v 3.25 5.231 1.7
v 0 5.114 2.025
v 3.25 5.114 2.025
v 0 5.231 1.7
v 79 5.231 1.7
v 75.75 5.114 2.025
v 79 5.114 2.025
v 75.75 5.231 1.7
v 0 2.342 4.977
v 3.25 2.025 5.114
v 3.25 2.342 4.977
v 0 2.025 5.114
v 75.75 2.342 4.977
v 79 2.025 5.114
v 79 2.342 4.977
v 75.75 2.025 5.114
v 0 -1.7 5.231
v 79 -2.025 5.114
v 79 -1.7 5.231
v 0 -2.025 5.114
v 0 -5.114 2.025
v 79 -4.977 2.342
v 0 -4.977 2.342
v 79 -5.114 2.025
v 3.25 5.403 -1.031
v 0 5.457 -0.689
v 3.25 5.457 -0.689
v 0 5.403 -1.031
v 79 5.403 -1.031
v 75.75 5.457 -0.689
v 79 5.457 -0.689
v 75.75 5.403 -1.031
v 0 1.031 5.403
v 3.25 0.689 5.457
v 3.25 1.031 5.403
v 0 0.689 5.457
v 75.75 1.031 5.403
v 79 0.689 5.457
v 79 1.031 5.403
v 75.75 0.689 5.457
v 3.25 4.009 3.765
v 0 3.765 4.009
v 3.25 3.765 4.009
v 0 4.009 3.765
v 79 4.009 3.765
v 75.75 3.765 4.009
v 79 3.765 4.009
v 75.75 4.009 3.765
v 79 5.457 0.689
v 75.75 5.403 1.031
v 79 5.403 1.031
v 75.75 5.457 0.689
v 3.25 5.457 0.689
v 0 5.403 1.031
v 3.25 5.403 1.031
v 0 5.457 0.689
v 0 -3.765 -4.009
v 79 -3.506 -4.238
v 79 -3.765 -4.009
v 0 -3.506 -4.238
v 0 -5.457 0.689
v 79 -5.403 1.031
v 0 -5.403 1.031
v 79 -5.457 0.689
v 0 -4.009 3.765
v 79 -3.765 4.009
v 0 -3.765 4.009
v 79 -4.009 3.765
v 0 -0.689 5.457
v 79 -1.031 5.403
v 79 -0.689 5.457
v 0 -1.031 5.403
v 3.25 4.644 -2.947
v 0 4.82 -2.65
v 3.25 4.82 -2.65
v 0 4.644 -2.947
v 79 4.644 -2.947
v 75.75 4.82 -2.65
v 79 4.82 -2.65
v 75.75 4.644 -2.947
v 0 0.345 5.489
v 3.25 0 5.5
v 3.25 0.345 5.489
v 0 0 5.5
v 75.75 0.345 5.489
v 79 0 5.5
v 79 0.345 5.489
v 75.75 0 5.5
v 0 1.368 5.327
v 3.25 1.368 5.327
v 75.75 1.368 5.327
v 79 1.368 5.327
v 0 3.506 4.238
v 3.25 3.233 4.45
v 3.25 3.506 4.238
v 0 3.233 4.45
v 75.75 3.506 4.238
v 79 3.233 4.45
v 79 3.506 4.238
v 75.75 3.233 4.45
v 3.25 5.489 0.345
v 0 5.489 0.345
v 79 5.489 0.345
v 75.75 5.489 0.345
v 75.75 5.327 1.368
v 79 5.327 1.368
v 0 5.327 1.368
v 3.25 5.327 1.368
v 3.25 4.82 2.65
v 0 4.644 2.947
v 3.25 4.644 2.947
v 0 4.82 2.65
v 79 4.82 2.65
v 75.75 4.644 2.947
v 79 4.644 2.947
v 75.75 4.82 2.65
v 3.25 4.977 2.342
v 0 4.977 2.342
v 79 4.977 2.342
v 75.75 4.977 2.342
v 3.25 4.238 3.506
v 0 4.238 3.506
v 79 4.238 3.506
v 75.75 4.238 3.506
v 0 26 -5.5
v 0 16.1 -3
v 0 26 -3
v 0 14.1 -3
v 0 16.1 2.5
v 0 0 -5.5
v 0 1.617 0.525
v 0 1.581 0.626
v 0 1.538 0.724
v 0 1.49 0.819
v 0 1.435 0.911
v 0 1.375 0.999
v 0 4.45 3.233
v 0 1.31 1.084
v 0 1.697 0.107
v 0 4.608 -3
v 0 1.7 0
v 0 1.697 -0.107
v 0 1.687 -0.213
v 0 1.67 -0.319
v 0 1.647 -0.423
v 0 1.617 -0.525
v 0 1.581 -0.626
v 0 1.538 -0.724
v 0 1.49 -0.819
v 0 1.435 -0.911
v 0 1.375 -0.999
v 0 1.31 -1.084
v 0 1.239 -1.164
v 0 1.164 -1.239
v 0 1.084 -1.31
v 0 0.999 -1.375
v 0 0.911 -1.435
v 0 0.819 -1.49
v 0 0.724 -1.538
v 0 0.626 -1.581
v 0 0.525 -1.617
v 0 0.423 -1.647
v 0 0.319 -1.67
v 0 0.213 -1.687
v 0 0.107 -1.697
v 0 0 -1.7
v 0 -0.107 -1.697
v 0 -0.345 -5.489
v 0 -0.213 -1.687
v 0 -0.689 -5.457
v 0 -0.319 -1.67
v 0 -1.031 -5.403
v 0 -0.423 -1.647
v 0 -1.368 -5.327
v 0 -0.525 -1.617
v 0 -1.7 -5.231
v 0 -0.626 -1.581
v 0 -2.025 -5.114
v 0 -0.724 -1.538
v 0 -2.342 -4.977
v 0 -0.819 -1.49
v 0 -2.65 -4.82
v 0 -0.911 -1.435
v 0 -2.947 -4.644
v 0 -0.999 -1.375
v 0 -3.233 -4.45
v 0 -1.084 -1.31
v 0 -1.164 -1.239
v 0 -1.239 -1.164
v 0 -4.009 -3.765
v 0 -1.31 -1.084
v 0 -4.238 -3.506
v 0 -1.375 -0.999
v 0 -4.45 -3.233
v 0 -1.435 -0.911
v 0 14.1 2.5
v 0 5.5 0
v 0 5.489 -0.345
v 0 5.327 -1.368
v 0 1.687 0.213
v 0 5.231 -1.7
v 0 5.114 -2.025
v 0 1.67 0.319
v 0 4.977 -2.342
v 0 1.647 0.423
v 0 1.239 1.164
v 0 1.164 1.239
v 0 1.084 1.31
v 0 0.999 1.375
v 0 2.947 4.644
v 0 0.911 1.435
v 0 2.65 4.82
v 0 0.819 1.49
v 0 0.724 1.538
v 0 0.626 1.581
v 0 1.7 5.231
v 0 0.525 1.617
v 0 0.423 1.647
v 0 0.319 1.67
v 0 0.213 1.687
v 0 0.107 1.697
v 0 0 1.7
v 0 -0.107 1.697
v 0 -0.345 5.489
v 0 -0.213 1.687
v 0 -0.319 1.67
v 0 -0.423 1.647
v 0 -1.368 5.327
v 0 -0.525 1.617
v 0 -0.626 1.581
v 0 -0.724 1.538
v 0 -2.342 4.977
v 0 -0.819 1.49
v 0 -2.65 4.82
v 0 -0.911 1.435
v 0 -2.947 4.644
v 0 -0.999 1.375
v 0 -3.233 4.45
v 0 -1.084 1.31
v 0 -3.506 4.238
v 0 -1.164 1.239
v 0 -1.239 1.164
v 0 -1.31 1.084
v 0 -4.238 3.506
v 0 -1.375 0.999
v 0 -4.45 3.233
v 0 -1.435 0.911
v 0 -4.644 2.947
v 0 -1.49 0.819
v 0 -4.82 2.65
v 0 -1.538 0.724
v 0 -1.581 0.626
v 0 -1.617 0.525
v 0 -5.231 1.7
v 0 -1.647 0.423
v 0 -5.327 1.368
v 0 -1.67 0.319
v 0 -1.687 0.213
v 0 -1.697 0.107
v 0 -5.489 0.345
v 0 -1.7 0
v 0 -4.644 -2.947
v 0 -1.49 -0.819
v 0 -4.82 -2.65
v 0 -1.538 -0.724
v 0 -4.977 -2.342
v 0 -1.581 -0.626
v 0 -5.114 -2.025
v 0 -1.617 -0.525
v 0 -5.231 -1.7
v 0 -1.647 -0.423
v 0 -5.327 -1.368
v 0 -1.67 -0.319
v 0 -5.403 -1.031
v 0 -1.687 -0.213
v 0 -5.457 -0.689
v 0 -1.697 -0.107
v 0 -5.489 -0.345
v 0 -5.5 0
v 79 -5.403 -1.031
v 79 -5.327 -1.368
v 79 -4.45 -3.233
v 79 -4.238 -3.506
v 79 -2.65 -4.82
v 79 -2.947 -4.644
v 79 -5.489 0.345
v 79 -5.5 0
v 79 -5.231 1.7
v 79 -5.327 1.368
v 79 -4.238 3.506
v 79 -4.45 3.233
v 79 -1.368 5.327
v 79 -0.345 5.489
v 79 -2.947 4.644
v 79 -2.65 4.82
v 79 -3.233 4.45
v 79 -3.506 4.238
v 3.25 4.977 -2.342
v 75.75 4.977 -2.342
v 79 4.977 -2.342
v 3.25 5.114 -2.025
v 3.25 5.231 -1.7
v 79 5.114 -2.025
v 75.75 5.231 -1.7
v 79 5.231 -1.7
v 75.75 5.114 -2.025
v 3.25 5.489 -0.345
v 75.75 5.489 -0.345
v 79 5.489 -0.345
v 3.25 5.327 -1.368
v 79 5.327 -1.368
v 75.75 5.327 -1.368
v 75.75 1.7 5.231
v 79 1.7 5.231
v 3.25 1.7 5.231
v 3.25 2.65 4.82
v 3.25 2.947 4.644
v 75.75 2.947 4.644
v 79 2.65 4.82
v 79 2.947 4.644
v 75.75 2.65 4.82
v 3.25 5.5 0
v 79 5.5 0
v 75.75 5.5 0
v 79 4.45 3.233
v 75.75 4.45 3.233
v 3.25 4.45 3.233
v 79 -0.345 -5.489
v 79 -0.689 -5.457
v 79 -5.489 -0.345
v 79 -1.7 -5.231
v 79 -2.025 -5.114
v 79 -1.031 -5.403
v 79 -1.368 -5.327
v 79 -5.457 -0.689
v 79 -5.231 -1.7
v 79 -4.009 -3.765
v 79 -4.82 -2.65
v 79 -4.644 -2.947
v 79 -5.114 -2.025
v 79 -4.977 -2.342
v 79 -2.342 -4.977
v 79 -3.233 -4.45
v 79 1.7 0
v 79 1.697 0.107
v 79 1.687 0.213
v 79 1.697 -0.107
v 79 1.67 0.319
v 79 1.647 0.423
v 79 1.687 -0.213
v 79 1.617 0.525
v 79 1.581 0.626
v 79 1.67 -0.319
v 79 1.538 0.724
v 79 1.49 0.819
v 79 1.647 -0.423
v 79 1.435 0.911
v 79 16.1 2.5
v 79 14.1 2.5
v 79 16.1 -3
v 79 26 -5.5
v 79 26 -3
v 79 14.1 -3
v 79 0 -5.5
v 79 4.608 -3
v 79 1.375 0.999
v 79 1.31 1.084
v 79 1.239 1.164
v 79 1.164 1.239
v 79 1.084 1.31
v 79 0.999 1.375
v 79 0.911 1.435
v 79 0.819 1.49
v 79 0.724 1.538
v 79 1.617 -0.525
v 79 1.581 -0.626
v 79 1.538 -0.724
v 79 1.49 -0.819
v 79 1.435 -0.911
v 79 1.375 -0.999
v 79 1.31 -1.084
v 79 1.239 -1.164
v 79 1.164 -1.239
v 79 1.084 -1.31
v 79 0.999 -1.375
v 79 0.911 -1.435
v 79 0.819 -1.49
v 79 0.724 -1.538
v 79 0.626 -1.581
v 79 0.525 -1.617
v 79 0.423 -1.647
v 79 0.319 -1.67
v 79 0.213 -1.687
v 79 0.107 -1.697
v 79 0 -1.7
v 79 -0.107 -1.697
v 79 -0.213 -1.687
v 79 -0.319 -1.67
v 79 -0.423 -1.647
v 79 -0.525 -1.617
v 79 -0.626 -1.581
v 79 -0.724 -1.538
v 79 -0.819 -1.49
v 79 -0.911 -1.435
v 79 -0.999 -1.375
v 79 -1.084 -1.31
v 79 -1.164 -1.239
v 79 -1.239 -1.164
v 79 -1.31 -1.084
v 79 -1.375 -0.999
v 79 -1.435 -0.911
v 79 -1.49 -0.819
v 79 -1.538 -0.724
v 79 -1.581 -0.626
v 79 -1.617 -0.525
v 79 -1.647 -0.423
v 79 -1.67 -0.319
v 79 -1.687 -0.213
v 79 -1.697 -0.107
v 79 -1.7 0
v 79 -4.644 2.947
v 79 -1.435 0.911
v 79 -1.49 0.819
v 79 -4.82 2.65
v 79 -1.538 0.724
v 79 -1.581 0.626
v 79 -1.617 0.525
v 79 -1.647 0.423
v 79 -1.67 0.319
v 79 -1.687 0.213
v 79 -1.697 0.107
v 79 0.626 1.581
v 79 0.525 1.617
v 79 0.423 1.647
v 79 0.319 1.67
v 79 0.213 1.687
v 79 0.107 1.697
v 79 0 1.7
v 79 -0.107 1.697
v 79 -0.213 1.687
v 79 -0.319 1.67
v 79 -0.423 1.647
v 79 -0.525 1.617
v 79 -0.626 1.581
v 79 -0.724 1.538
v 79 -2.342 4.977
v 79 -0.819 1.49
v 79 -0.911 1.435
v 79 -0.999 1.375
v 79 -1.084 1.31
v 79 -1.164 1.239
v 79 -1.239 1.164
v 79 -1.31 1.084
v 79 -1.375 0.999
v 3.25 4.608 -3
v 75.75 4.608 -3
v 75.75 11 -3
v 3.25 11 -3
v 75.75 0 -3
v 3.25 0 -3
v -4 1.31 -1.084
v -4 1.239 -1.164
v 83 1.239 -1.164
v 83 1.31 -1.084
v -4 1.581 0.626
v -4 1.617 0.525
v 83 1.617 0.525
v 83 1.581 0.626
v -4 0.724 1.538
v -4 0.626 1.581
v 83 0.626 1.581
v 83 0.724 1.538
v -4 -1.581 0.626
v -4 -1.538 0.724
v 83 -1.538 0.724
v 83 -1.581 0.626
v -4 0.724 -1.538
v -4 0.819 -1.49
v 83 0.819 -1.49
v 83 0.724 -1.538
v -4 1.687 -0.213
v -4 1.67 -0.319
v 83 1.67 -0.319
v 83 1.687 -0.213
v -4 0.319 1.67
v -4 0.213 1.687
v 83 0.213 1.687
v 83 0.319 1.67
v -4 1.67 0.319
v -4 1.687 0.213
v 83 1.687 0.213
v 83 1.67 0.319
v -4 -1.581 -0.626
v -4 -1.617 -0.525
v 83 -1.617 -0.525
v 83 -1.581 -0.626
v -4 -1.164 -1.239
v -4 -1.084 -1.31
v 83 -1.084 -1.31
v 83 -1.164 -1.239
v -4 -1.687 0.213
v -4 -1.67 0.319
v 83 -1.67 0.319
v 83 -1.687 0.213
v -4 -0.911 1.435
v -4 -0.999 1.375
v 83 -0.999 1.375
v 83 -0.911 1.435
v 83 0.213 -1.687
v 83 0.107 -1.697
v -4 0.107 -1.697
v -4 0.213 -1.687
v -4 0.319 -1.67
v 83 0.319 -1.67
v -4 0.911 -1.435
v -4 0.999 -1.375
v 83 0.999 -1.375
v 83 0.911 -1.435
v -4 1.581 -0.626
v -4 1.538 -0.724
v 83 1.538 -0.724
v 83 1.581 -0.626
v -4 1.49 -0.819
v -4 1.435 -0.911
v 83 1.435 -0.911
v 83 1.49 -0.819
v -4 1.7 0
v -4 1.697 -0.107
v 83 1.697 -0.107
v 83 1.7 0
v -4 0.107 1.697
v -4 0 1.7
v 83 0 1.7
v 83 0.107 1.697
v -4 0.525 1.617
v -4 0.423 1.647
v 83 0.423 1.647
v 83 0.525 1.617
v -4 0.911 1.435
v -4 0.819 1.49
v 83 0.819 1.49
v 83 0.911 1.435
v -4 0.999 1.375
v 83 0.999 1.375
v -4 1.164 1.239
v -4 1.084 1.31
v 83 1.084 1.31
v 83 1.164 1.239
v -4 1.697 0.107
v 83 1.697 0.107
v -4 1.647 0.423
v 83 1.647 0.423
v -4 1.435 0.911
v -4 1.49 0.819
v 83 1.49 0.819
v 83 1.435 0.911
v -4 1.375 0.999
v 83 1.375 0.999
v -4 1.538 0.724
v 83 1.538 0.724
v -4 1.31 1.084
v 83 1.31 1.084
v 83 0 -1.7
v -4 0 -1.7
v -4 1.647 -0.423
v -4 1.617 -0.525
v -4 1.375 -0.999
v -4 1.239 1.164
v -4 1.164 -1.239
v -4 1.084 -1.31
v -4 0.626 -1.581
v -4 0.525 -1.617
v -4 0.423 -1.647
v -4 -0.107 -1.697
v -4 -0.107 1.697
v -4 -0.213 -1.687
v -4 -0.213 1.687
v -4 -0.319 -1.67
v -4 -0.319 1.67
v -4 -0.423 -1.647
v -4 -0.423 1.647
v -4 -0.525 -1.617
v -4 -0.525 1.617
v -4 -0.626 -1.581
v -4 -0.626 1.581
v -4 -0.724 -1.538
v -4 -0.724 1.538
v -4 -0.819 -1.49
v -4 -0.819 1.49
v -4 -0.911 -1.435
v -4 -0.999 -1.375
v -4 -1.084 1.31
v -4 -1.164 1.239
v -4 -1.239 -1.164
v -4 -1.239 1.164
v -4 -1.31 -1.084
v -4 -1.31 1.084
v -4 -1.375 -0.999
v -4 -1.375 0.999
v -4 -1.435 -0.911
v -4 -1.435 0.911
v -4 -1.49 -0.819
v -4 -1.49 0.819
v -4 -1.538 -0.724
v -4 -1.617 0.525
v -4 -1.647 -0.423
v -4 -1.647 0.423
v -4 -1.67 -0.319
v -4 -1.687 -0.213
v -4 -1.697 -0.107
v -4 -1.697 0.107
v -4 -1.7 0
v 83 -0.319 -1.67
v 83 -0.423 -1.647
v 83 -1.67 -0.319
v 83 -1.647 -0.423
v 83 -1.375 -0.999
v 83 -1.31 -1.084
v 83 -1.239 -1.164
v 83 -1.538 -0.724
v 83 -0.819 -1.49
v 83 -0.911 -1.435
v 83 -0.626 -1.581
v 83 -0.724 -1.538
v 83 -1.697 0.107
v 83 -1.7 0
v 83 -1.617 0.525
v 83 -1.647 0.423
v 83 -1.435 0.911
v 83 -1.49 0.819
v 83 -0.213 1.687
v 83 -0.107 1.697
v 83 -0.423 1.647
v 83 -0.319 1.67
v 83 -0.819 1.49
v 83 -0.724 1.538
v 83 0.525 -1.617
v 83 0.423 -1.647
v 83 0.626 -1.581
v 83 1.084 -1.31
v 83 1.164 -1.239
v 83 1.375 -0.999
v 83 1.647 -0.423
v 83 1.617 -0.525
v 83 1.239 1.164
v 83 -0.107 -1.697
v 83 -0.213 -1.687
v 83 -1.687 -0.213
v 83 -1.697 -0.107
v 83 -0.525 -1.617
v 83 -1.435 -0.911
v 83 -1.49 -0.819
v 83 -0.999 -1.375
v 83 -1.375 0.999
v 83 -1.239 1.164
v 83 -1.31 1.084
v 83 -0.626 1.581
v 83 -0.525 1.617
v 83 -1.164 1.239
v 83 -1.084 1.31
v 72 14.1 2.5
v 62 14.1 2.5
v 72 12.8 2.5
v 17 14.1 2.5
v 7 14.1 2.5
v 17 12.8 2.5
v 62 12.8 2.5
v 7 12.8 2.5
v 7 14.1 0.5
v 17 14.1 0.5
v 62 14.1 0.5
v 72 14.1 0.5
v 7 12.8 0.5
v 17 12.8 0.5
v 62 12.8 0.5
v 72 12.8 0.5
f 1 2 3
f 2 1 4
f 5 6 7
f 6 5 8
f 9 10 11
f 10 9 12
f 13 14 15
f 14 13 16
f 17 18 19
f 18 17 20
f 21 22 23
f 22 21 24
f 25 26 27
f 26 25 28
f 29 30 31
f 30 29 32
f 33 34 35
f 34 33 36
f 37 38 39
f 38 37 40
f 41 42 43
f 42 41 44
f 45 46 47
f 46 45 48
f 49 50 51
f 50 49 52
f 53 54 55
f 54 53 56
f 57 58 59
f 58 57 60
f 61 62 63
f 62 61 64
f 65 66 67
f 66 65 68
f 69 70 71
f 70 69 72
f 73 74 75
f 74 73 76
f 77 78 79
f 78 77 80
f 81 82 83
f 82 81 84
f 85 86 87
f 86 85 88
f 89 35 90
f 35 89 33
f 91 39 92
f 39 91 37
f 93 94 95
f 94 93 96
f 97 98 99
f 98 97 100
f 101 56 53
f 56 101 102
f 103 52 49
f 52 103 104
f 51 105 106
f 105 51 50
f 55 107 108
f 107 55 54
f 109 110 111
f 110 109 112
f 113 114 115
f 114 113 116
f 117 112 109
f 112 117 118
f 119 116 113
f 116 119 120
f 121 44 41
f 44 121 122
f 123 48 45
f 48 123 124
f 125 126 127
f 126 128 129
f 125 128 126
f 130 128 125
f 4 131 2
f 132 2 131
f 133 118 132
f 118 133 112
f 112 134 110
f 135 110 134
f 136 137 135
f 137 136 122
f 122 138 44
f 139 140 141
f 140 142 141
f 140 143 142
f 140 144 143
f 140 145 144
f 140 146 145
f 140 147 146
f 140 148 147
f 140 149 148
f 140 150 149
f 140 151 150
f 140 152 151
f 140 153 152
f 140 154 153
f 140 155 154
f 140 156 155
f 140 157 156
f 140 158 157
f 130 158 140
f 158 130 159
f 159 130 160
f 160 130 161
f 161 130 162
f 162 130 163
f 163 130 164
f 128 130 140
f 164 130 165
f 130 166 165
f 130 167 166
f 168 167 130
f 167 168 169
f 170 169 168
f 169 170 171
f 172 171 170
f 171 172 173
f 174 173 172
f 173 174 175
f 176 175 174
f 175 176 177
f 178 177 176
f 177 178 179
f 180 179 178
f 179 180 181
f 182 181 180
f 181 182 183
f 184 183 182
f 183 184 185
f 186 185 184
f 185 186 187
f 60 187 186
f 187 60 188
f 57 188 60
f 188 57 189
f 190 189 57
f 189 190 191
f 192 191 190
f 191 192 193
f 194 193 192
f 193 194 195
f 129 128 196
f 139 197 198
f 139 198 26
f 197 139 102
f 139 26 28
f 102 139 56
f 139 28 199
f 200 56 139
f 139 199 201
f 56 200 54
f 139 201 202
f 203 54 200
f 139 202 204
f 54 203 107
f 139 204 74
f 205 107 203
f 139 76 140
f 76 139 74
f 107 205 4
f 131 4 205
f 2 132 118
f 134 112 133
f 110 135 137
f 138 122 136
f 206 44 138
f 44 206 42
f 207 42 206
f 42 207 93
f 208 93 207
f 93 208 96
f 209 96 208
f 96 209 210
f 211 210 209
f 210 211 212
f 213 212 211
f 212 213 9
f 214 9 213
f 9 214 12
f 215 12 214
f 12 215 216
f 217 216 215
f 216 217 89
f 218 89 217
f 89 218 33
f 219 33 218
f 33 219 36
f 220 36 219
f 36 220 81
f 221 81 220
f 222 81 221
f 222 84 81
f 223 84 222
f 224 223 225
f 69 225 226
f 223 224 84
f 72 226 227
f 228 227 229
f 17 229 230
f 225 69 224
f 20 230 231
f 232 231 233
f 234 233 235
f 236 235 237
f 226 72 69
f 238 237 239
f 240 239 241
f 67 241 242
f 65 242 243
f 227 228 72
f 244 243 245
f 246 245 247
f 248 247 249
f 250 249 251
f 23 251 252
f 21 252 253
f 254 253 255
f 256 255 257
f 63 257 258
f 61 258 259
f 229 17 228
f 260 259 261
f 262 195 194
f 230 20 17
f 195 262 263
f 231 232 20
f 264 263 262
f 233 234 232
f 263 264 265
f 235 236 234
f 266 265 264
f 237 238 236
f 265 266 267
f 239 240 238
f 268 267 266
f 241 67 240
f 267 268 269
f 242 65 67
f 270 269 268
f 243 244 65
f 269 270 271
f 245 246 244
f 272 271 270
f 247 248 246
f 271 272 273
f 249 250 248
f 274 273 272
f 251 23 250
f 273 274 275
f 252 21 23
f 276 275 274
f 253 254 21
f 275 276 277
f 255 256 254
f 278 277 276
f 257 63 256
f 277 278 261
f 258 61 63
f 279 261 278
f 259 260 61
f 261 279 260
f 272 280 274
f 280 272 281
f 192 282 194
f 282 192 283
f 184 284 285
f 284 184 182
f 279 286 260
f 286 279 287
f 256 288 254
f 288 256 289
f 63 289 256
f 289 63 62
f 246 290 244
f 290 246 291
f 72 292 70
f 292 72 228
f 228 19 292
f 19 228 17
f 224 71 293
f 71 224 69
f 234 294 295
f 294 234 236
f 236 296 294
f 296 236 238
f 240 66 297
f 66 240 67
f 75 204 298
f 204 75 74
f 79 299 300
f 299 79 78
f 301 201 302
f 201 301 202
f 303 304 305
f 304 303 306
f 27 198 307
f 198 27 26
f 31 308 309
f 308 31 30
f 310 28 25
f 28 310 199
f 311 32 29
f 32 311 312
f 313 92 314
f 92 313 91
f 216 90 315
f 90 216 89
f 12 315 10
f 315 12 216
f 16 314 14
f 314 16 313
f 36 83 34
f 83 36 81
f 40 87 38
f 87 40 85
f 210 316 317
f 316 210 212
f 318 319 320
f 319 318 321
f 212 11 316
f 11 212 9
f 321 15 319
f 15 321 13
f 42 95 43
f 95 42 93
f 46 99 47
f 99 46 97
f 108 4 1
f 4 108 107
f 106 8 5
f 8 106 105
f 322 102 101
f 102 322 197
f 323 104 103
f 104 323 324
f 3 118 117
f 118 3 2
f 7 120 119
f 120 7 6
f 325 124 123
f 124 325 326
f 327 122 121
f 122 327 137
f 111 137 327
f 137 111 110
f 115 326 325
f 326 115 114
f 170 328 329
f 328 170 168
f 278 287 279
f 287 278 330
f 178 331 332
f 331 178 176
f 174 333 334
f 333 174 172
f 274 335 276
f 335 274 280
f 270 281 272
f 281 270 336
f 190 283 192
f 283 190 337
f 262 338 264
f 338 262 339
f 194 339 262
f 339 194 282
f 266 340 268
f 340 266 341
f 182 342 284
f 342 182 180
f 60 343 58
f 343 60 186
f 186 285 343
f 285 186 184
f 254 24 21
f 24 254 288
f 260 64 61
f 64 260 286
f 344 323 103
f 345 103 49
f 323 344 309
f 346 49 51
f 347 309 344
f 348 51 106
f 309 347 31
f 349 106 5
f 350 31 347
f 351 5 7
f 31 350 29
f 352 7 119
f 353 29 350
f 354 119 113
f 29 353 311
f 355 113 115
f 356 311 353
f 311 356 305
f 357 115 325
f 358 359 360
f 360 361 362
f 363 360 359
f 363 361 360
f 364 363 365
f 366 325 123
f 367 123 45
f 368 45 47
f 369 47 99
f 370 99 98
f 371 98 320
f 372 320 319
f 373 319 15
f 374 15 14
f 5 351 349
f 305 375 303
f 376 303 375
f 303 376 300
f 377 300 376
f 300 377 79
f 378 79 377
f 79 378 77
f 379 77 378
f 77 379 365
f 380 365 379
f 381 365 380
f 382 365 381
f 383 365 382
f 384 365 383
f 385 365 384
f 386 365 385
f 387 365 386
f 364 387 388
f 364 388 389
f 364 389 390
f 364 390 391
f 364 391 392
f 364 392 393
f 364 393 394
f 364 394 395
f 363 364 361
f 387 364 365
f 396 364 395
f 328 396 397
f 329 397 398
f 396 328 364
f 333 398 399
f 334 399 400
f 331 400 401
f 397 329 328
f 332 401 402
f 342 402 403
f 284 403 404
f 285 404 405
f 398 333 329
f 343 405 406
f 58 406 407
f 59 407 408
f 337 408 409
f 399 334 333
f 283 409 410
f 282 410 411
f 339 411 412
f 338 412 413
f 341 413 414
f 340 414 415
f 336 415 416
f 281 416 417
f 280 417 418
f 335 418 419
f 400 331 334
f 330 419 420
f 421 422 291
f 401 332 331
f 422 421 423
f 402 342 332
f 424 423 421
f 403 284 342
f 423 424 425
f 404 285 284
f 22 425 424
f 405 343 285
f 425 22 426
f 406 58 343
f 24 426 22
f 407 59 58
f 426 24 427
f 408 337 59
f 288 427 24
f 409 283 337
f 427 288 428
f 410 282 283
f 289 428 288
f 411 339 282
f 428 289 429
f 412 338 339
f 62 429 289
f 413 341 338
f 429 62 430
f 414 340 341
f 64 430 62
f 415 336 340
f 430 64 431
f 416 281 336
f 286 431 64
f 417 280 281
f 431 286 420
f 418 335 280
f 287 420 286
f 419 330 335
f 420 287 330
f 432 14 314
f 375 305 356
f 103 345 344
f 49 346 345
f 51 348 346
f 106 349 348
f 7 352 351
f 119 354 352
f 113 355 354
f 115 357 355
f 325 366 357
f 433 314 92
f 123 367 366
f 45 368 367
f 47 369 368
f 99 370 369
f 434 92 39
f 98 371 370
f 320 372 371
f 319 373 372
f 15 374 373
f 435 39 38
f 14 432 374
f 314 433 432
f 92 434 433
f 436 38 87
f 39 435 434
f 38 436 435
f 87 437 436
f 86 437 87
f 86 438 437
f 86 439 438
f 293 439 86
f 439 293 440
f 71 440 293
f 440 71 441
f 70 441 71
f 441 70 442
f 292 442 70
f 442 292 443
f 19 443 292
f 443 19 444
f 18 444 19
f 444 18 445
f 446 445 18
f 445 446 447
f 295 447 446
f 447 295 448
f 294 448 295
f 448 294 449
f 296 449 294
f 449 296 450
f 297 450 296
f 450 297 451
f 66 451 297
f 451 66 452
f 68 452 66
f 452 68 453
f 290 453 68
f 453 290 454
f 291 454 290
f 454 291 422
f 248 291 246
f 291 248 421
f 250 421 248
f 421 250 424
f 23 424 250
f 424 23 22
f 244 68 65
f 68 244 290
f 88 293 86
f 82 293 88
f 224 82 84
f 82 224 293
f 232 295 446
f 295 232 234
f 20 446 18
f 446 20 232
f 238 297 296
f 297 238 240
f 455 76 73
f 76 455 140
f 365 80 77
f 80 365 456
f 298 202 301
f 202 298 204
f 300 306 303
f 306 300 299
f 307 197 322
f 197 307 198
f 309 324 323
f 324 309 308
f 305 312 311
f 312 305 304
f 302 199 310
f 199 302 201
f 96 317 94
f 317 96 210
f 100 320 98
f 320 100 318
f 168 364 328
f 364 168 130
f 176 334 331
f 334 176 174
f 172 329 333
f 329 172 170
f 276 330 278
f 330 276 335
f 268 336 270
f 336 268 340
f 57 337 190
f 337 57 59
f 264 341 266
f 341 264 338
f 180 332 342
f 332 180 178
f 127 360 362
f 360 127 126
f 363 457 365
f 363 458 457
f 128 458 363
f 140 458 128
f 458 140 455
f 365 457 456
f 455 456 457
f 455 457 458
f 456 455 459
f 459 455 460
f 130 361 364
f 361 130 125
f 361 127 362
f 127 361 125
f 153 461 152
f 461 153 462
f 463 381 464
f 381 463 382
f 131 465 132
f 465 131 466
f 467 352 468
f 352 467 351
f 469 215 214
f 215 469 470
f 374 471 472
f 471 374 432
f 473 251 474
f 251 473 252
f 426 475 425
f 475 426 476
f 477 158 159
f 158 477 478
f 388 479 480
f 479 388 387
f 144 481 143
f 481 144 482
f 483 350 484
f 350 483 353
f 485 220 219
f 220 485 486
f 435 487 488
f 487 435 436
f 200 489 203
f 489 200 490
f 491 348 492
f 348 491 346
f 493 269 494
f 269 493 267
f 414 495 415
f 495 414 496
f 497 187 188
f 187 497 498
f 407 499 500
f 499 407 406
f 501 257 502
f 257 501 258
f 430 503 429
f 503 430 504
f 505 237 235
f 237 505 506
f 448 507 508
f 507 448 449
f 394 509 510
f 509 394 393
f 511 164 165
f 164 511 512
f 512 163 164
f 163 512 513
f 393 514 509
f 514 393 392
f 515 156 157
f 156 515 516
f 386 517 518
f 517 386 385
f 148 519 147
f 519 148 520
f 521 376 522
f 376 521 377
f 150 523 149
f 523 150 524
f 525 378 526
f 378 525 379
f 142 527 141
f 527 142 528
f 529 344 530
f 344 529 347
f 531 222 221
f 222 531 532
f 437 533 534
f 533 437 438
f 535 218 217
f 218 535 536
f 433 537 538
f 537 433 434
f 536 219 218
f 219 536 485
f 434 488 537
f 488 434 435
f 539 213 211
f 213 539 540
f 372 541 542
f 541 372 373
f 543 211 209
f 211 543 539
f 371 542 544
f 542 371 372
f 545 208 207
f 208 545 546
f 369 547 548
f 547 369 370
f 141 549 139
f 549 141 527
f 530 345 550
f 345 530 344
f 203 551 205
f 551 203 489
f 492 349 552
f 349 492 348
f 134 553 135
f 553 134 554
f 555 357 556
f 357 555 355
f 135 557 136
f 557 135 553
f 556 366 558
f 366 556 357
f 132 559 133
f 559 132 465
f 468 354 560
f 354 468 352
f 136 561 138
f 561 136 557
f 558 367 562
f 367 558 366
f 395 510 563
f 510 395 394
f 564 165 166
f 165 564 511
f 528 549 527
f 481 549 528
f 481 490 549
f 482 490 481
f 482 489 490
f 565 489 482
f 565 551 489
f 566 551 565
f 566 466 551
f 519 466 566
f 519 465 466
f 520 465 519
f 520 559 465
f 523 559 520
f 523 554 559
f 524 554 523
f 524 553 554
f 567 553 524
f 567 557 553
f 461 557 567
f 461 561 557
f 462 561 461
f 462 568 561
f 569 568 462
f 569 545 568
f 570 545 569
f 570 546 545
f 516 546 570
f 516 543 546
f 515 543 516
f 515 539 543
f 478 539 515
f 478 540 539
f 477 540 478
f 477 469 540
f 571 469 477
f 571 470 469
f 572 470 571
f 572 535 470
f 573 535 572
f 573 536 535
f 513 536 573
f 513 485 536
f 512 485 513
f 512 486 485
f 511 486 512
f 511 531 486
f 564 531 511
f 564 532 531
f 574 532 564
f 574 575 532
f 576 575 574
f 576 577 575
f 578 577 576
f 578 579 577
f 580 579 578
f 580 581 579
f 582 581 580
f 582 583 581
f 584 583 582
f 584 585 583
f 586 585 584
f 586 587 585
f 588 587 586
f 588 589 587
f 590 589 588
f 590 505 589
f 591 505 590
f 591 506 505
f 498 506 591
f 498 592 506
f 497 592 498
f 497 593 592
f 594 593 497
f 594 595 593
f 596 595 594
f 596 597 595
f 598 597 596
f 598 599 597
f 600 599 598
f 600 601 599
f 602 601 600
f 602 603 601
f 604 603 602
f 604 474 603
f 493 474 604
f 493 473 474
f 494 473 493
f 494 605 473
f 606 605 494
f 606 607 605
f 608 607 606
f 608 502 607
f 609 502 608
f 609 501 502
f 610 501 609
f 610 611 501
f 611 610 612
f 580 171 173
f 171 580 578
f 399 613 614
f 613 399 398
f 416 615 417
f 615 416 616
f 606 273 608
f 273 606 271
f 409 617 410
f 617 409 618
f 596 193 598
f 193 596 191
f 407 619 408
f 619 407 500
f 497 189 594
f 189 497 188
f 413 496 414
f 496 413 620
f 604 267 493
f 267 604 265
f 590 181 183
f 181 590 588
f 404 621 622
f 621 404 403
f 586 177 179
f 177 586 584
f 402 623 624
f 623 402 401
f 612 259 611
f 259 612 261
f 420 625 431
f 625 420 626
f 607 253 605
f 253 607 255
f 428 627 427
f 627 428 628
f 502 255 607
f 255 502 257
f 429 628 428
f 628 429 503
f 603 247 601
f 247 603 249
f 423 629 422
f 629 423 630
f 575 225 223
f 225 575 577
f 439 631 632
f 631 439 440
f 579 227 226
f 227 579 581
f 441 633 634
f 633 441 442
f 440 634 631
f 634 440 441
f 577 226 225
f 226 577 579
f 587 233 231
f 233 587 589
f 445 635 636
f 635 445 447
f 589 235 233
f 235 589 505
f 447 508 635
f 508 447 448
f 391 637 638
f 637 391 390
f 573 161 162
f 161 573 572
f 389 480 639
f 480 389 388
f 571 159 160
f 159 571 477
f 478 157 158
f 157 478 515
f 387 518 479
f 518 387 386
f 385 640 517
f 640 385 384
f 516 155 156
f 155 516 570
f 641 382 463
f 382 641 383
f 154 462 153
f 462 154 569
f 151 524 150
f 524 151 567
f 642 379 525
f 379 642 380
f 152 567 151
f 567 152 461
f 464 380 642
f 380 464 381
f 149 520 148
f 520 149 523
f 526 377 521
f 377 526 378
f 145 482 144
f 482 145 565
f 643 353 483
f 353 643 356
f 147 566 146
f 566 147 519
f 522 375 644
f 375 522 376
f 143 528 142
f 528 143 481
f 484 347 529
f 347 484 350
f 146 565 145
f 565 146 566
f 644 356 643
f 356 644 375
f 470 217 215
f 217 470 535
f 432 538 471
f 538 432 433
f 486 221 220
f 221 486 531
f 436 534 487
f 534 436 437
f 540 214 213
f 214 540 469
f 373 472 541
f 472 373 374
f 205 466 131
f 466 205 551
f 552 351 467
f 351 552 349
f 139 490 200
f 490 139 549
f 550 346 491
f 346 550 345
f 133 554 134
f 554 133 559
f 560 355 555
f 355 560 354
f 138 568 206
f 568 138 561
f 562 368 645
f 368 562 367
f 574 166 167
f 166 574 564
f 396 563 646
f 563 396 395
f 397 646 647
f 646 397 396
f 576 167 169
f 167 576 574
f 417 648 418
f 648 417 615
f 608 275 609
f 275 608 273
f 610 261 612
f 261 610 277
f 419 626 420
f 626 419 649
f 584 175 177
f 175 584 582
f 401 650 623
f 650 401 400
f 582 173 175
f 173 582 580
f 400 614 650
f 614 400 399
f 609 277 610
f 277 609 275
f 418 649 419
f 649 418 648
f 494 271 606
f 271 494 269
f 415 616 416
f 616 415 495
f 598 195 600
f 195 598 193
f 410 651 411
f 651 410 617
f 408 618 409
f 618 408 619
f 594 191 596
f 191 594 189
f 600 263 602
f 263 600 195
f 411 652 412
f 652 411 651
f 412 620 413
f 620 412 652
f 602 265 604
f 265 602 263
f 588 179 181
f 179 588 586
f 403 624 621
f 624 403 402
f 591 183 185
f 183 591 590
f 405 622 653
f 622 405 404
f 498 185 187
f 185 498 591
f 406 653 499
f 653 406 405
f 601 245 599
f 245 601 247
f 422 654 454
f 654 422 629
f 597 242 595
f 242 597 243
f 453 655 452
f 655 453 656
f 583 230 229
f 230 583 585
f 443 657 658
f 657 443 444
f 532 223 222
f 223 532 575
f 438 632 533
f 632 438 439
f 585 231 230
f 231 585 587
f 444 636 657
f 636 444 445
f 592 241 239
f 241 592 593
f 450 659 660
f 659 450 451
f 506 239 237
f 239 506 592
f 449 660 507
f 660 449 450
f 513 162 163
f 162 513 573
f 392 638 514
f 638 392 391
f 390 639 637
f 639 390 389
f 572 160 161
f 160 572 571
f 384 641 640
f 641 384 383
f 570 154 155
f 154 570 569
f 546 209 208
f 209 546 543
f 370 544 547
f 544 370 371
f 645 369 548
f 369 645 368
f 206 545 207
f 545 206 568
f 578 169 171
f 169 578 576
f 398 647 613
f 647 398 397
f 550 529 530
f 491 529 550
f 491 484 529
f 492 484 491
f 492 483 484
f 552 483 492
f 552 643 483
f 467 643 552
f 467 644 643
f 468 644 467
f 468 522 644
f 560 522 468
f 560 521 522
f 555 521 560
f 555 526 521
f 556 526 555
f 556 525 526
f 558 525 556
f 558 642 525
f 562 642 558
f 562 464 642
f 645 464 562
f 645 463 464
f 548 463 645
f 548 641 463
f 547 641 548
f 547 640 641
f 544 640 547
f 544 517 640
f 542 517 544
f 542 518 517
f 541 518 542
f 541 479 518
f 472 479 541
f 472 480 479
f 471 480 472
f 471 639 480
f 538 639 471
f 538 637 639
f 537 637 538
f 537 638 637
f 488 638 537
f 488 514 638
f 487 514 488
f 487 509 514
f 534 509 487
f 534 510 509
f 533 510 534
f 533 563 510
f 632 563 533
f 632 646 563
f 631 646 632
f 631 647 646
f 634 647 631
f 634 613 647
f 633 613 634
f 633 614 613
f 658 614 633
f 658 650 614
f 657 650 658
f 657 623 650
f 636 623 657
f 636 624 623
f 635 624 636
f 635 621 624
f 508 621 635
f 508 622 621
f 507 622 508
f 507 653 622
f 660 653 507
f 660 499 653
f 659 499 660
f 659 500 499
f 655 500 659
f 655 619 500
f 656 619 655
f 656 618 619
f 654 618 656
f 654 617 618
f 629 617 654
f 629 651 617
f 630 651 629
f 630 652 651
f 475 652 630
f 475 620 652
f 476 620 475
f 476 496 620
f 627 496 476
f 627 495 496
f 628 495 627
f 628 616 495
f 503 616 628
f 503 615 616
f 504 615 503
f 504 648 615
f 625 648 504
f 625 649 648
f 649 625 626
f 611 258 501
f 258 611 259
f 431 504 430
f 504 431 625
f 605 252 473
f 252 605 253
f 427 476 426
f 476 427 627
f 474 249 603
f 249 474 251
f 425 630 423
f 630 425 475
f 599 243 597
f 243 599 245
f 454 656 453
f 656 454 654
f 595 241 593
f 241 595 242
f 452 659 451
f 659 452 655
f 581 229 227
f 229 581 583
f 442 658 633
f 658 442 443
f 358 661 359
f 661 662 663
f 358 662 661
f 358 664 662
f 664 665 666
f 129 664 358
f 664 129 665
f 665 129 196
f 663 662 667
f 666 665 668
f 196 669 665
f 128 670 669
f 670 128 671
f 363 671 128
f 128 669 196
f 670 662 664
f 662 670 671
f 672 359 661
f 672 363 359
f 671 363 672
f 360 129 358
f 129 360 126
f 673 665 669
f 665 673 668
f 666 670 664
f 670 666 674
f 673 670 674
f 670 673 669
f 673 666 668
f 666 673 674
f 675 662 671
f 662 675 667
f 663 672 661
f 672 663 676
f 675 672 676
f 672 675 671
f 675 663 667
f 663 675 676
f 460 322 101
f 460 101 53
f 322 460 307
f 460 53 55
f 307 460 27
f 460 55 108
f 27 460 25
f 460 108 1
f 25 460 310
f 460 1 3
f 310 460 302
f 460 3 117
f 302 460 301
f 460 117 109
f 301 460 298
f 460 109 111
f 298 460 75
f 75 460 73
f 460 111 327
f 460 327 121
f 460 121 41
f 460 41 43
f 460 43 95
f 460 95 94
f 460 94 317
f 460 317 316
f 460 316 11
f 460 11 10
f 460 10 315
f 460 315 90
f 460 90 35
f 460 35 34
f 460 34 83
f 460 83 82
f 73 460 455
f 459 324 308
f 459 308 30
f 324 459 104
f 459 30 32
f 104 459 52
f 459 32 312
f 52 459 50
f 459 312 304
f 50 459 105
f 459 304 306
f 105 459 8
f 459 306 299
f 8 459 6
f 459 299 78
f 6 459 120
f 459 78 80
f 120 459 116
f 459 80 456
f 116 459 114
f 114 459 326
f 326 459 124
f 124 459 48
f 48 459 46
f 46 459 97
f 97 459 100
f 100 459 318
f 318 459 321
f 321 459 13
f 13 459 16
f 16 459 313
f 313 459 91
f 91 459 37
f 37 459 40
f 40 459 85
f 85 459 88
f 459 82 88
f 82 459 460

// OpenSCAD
$fn = 100;

difference() {
    union() {
        rotate([0,90,0])
        cylinder(h=79, d=11);

        color("blue")
        translate([0, 0, -5.5])
        cube([79, 26, 2.5]);

        color("yellow")
        translate([-4, 0, 0])
        rotate([0, 90, 0])
        cylinder(h=79 + 4 + 4, d=3.4);

        color("green")
        translate([0, 14.1, -5.6 + 2.5])
        cube([79, 2, 5.6]);

        color("pink")
        translate([7, 14.1 - 1.3, 0.5])
        cube([10, 1.3, 2]);

        color("pink")
        translate([79 - 7 -10, 14.1 - 1.3, 0.5])
        cube([10, 1.3, 2]);
    }

    color("red")
    translate([(79-72.5) / 2, 0, -6 + 3])
    cube([72.5, 11, 12]);
}
